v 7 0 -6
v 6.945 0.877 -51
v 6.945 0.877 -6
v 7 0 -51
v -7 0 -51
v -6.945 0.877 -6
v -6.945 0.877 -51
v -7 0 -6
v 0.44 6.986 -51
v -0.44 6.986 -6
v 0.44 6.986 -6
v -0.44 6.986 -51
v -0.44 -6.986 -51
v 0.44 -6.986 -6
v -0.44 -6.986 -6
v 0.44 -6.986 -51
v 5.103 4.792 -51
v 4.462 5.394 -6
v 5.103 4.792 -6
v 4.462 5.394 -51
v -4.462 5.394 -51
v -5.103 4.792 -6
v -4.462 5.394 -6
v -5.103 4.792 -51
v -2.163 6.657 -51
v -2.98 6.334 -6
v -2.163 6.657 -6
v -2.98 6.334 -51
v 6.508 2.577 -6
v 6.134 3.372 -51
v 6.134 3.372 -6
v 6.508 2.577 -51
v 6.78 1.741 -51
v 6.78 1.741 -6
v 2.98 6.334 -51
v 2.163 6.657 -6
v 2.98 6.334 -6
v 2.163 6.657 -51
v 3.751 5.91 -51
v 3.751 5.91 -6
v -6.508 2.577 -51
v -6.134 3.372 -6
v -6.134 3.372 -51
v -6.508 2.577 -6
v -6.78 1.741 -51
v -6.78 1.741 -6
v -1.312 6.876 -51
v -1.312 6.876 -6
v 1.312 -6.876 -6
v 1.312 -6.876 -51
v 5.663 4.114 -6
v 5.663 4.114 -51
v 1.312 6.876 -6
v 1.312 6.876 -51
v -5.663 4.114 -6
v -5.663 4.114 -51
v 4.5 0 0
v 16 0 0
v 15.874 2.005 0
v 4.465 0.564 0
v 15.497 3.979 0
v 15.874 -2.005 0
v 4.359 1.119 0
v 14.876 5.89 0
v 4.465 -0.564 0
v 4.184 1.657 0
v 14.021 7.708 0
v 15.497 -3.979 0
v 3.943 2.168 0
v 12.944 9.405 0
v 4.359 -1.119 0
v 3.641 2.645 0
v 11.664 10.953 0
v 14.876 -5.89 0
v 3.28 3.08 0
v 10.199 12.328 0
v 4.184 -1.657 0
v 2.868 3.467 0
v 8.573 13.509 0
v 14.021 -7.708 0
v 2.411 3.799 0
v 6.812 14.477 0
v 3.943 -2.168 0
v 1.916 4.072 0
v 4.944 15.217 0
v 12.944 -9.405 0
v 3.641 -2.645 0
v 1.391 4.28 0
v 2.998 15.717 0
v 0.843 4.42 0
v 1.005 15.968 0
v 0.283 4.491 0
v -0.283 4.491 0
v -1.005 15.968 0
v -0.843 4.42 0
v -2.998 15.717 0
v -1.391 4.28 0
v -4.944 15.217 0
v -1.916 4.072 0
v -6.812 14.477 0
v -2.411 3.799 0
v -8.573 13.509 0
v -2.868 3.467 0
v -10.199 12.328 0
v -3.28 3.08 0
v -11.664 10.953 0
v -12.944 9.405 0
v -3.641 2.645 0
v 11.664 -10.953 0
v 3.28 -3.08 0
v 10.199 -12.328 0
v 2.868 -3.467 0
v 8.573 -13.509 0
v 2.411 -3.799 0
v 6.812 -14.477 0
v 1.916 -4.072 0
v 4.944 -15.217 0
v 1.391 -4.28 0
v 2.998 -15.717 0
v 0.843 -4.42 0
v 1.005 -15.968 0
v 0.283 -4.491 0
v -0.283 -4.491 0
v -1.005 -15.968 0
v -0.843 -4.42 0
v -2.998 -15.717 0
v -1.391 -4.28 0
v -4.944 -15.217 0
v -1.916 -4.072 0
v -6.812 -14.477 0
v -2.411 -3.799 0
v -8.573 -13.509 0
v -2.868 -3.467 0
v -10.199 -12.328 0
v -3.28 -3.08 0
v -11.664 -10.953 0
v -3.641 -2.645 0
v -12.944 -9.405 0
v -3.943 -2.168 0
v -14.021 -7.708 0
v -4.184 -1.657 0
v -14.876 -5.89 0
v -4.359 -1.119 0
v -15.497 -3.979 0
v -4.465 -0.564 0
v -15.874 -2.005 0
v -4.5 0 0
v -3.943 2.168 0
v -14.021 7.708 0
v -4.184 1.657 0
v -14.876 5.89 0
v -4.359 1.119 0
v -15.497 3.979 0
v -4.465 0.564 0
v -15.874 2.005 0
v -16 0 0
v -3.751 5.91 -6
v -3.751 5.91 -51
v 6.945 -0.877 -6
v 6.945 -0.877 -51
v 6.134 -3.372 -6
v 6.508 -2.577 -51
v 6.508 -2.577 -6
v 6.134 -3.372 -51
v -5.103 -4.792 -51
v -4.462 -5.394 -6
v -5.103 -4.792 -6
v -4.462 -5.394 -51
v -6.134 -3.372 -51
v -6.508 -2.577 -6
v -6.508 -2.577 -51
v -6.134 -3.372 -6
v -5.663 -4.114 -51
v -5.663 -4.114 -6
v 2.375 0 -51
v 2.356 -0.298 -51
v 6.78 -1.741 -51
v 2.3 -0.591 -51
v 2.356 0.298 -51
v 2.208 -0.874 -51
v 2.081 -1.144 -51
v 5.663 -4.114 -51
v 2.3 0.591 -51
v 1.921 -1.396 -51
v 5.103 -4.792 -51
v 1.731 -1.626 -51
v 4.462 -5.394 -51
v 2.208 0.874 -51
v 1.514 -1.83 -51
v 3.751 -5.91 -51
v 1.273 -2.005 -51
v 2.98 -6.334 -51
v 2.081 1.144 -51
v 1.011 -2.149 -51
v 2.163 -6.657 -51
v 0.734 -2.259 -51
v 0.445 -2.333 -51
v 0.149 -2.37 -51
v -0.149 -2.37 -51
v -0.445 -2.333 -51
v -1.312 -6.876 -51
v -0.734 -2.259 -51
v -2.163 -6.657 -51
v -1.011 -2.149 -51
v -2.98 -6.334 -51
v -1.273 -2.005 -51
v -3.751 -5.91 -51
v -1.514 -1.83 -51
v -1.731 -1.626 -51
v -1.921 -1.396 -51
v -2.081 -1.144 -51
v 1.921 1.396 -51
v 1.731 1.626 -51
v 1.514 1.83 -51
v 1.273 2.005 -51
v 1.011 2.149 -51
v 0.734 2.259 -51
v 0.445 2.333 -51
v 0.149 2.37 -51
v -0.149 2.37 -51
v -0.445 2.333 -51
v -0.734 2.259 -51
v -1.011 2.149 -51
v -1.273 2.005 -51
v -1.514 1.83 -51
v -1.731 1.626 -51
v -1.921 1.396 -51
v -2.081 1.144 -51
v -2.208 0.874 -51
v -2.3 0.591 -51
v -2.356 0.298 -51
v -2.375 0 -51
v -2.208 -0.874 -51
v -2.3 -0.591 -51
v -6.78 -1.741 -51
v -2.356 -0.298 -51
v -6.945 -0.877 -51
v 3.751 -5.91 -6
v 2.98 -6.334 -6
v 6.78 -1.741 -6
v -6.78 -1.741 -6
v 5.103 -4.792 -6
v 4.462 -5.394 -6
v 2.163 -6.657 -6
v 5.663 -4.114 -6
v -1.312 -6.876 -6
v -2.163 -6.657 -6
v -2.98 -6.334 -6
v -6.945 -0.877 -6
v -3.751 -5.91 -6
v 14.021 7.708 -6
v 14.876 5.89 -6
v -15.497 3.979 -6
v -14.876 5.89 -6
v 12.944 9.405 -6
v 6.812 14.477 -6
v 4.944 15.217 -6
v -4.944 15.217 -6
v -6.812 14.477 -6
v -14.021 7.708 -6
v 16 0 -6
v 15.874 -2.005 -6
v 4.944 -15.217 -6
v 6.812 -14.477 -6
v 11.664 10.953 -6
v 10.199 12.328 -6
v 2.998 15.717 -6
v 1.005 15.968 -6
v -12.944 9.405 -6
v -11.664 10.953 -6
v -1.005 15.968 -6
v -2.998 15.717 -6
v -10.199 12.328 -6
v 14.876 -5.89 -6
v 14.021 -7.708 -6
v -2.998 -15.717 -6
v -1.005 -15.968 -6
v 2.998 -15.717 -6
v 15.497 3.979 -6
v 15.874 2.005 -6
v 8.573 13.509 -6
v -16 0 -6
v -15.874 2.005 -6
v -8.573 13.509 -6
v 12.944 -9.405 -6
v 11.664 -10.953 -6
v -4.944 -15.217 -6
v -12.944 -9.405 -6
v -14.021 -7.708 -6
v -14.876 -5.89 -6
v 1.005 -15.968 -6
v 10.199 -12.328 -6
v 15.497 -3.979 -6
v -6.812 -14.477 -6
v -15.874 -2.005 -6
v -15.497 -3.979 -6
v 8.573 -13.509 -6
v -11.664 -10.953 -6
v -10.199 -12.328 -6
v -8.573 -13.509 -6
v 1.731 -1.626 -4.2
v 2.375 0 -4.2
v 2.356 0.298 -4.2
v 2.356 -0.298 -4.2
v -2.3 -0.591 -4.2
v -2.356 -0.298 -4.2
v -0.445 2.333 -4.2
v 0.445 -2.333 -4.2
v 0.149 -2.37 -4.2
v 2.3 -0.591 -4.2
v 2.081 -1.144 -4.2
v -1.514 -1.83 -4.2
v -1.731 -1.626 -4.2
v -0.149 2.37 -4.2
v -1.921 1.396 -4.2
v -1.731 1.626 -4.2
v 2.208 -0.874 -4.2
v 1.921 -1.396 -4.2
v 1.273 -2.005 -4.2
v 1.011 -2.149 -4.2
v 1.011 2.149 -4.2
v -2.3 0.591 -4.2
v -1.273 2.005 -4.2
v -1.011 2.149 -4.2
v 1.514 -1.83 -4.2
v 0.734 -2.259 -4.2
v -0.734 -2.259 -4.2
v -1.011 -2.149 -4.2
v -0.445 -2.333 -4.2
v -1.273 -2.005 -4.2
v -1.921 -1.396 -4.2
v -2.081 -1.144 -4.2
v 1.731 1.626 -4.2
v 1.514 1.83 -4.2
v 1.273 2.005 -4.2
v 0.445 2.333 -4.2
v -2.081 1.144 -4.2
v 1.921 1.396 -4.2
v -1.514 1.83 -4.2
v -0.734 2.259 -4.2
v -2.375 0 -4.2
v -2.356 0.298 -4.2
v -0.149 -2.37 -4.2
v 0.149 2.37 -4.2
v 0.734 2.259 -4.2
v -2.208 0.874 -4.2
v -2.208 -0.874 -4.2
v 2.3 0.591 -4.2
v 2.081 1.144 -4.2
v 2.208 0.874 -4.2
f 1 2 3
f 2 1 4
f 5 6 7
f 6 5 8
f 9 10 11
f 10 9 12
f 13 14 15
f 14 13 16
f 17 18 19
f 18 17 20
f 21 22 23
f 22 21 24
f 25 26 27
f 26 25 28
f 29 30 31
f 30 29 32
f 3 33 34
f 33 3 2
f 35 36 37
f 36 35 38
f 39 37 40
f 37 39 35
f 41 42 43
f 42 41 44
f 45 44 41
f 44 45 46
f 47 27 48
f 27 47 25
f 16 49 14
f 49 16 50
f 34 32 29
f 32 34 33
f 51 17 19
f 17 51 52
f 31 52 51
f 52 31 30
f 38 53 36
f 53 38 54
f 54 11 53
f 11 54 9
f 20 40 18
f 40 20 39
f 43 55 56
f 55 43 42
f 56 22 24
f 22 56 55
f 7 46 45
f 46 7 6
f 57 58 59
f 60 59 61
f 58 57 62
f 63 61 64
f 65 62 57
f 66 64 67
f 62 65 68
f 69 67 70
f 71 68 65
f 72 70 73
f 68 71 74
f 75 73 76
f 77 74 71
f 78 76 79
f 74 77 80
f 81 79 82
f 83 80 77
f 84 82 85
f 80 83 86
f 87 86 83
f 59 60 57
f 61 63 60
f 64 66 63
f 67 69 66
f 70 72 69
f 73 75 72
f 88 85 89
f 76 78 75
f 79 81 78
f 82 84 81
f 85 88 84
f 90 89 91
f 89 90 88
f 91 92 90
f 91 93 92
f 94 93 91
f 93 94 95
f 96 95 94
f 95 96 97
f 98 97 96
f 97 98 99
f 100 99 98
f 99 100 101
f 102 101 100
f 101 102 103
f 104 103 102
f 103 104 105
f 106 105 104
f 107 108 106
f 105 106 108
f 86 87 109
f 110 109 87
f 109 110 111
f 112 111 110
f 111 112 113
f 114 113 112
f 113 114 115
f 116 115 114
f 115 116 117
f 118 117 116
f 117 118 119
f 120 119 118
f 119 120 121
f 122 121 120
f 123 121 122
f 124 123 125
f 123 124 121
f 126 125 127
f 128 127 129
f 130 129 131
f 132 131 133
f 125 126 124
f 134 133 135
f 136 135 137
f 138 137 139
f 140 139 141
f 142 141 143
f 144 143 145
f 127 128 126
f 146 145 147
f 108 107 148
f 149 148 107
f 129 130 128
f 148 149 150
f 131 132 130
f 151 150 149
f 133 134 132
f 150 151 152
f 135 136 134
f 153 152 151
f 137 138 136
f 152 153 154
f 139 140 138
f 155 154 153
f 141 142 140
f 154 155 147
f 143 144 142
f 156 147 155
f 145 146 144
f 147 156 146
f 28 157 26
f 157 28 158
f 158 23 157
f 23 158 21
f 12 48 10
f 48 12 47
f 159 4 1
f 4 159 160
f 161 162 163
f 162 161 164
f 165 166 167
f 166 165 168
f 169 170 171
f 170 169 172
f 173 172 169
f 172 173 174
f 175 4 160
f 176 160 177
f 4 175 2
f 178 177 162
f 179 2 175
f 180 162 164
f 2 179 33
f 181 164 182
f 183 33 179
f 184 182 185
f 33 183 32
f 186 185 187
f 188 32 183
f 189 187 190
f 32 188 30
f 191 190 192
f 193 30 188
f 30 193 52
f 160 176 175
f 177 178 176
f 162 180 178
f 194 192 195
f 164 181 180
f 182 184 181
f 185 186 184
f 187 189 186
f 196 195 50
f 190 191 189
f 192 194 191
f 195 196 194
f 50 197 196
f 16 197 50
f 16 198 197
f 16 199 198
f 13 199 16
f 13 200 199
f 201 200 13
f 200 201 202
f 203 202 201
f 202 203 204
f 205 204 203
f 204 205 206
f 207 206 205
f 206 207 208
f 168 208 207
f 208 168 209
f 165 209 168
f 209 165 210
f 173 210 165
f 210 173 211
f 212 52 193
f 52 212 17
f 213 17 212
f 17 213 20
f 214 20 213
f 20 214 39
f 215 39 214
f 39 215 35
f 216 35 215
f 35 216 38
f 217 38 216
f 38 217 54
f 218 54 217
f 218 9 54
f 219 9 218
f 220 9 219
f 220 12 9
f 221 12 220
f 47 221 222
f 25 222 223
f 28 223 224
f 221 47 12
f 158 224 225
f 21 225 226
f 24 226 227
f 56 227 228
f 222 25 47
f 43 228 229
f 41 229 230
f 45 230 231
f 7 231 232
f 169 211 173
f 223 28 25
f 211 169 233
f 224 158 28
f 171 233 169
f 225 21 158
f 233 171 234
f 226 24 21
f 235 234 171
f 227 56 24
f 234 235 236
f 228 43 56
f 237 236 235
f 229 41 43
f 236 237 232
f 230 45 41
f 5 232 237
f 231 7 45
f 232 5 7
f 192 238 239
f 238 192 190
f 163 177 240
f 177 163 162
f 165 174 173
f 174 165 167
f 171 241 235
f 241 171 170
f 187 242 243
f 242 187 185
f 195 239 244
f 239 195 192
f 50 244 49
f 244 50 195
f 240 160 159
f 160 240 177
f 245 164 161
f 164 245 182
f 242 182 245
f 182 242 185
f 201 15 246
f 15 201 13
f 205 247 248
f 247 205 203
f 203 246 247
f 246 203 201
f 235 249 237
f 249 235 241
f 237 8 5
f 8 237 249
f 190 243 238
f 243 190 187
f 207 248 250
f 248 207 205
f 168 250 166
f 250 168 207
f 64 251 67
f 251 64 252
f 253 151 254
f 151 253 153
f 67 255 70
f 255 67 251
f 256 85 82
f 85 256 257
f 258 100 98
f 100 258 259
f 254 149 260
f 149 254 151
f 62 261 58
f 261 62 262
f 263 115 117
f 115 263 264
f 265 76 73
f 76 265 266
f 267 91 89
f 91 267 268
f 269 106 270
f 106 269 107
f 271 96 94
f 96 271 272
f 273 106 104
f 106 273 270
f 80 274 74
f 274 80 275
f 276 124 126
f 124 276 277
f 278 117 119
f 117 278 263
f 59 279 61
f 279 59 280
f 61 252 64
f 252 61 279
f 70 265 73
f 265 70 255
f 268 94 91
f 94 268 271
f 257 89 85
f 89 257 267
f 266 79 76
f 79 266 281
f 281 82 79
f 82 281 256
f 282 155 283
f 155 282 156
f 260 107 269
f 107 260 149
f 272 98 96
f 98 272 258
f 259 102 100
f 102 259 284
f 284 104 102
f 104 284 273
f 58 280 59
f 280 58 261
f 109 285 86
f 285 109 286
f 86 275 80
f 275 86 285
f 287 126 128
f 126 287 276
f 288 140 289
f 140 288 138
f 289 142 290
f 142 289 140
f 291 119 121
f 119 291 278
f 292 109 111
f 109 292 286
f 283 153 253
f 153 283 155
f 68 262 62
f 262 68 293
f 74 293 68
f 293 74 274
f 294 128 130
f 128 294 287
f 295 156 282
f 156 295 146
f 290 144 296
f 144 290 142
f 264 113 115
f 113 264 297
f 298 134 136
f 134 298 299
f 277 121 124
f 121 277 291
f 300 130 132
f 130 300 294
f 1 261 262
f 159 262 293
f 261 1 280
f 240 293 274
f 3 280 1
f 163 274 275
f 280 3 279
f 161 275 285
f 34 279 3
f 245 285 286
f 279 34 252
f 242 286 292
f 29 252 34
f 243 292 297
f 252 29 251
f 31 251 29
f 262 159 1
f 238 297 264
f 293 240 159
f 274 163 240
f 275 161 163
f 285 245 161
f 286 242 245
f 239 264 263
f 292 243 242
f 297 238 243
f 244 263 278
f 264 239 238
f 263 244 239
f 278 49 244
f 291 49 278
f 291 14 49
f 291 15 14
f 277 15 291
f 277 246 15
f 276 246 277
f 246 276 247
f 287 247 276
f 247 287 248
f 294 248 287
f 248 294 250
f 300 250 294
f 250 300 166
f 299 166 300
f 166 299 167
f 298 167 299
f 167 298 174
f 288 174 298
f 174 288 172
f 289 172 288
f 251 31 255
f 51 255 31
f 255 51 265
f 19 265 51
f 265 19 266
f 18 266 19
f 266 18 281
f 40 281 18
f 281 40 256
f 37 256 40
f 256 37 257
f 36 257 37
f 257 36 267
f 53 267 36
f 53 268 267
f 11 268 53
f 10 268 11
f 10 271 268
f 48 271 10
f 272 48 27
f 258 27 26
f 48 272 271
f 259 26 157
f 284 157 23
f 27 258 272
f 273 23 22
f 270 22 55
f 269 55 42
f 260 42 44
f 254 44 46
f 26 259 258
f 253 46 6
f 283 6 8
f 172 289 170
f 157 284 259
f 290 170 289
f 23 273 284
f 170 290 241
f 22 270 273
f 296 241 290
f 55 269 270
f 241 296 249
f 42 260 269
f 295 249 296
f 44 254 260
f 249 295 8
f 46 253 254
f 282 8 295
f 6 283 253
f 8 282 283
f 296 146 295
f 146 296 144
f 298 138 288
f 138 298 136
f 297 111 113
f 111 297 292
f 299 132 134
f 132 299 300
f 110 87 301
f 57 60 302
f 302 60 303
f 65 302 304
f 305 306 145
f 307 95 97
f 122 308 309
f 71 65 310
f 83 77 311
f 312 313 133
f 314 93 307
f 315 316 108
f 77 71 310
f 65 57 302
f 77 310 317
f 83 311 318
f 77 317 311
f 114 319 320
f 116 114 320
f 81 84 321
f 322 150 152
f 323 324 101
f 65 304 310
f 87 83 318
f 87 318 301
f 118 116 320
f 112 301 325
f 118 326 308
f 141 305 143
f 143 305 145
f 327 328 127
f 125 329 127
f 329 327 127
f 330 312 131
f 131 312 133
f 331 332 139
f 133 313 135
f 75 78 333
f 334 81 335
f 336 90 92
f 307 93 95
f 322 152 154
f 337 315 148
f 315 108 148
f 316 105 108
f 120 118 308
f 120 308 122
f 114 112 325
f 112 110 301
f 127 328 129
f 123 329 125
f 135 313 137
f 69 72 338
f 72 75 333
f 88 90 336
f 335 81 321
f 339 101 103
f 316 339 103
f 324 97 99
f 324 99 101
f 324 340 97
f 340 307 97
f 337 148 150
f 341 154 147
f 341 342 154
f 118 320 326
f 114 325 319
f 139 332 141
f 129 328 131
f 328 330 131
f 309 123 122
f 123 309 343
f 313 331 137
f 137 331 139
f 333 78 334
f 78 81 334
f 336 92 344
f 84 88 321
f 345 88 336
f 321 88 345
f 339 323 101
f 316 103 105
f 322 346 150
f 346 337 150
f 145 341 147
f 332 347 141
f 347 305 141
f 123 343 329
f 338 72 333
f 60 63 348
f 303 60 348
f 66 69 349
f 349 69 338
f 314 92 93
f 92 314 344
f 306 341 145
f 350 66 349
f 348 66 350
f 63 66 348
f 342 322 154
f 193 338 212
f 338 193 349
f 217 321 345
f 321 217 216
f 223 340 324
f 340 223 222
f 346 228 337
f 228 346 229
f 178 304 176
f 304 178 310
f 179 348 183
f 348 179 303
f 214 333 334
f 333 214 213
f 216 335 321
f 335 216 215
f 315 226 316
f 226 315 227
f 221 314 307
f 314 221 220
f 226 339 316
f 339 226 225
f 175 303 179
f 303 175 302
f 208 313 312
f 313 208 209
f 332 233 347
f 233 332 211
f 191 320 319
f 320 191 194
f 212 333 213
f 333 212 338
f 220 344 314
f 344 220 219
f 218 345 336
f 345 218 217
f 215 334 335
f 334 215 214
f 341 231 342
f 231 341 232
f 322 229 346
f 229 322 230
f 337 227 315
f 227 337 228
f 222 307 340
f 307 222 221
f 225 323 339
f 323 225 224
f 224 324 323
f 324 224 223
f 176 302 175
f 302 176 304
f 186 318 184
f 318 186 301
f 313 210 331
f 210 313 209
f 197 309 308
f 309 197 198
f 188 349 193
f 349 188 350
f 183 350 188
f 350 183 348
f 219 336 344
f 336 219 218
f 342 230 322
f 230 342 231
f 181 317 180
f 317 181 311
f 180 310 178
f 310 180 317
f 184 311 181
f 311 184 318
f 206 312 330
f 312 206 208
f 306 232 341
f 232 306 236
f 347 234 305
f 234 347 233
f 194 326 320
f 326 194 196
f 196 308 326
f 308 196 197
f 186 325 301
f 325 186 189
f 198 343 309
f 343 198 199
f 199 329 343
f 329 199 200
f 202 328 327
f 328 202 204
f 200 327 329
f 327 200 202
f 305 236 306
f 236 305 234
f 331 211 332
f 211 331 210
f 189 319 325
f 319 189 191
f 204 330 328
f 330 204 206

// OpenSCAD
$fn = 50;


difference() {
	union() {
		translate(v = [0, 0, -51.0000000000]) {
			cylinder(h = 51, r = 7.0000000000);
		}
		translate(v = [0, 0, -6.0000000000]) {
			cylinder(h = 6, r = 16.0000000000);
		}
	}
	union() {
		translate(v = [0, 0, 0]) {
			rotate(a = [0, 0, 0]) {
				difference() {
					union() {
						#translate(v = [0, 0, -51.0000000000]) {
							cylinder(h = 51, r = 2.2500000000);
						}
						#translate(v = [0, 0, -4.2000000000]) {
							cylinder(h = 4.2000000000, r1 = 2.3750000000, r2 = 4.5000000000);
						}
						#translate(v = [0, 0, -51.0000000000]) {
							cylinder(h = 51, r = 2.3750000000);
						}
						#translate(v = [0, 0, -51.0000000000]) {
							cylinder(h = 51, r = 2.2500000000);
						}
					}
					union();
				}
			}
		}
	}
}
